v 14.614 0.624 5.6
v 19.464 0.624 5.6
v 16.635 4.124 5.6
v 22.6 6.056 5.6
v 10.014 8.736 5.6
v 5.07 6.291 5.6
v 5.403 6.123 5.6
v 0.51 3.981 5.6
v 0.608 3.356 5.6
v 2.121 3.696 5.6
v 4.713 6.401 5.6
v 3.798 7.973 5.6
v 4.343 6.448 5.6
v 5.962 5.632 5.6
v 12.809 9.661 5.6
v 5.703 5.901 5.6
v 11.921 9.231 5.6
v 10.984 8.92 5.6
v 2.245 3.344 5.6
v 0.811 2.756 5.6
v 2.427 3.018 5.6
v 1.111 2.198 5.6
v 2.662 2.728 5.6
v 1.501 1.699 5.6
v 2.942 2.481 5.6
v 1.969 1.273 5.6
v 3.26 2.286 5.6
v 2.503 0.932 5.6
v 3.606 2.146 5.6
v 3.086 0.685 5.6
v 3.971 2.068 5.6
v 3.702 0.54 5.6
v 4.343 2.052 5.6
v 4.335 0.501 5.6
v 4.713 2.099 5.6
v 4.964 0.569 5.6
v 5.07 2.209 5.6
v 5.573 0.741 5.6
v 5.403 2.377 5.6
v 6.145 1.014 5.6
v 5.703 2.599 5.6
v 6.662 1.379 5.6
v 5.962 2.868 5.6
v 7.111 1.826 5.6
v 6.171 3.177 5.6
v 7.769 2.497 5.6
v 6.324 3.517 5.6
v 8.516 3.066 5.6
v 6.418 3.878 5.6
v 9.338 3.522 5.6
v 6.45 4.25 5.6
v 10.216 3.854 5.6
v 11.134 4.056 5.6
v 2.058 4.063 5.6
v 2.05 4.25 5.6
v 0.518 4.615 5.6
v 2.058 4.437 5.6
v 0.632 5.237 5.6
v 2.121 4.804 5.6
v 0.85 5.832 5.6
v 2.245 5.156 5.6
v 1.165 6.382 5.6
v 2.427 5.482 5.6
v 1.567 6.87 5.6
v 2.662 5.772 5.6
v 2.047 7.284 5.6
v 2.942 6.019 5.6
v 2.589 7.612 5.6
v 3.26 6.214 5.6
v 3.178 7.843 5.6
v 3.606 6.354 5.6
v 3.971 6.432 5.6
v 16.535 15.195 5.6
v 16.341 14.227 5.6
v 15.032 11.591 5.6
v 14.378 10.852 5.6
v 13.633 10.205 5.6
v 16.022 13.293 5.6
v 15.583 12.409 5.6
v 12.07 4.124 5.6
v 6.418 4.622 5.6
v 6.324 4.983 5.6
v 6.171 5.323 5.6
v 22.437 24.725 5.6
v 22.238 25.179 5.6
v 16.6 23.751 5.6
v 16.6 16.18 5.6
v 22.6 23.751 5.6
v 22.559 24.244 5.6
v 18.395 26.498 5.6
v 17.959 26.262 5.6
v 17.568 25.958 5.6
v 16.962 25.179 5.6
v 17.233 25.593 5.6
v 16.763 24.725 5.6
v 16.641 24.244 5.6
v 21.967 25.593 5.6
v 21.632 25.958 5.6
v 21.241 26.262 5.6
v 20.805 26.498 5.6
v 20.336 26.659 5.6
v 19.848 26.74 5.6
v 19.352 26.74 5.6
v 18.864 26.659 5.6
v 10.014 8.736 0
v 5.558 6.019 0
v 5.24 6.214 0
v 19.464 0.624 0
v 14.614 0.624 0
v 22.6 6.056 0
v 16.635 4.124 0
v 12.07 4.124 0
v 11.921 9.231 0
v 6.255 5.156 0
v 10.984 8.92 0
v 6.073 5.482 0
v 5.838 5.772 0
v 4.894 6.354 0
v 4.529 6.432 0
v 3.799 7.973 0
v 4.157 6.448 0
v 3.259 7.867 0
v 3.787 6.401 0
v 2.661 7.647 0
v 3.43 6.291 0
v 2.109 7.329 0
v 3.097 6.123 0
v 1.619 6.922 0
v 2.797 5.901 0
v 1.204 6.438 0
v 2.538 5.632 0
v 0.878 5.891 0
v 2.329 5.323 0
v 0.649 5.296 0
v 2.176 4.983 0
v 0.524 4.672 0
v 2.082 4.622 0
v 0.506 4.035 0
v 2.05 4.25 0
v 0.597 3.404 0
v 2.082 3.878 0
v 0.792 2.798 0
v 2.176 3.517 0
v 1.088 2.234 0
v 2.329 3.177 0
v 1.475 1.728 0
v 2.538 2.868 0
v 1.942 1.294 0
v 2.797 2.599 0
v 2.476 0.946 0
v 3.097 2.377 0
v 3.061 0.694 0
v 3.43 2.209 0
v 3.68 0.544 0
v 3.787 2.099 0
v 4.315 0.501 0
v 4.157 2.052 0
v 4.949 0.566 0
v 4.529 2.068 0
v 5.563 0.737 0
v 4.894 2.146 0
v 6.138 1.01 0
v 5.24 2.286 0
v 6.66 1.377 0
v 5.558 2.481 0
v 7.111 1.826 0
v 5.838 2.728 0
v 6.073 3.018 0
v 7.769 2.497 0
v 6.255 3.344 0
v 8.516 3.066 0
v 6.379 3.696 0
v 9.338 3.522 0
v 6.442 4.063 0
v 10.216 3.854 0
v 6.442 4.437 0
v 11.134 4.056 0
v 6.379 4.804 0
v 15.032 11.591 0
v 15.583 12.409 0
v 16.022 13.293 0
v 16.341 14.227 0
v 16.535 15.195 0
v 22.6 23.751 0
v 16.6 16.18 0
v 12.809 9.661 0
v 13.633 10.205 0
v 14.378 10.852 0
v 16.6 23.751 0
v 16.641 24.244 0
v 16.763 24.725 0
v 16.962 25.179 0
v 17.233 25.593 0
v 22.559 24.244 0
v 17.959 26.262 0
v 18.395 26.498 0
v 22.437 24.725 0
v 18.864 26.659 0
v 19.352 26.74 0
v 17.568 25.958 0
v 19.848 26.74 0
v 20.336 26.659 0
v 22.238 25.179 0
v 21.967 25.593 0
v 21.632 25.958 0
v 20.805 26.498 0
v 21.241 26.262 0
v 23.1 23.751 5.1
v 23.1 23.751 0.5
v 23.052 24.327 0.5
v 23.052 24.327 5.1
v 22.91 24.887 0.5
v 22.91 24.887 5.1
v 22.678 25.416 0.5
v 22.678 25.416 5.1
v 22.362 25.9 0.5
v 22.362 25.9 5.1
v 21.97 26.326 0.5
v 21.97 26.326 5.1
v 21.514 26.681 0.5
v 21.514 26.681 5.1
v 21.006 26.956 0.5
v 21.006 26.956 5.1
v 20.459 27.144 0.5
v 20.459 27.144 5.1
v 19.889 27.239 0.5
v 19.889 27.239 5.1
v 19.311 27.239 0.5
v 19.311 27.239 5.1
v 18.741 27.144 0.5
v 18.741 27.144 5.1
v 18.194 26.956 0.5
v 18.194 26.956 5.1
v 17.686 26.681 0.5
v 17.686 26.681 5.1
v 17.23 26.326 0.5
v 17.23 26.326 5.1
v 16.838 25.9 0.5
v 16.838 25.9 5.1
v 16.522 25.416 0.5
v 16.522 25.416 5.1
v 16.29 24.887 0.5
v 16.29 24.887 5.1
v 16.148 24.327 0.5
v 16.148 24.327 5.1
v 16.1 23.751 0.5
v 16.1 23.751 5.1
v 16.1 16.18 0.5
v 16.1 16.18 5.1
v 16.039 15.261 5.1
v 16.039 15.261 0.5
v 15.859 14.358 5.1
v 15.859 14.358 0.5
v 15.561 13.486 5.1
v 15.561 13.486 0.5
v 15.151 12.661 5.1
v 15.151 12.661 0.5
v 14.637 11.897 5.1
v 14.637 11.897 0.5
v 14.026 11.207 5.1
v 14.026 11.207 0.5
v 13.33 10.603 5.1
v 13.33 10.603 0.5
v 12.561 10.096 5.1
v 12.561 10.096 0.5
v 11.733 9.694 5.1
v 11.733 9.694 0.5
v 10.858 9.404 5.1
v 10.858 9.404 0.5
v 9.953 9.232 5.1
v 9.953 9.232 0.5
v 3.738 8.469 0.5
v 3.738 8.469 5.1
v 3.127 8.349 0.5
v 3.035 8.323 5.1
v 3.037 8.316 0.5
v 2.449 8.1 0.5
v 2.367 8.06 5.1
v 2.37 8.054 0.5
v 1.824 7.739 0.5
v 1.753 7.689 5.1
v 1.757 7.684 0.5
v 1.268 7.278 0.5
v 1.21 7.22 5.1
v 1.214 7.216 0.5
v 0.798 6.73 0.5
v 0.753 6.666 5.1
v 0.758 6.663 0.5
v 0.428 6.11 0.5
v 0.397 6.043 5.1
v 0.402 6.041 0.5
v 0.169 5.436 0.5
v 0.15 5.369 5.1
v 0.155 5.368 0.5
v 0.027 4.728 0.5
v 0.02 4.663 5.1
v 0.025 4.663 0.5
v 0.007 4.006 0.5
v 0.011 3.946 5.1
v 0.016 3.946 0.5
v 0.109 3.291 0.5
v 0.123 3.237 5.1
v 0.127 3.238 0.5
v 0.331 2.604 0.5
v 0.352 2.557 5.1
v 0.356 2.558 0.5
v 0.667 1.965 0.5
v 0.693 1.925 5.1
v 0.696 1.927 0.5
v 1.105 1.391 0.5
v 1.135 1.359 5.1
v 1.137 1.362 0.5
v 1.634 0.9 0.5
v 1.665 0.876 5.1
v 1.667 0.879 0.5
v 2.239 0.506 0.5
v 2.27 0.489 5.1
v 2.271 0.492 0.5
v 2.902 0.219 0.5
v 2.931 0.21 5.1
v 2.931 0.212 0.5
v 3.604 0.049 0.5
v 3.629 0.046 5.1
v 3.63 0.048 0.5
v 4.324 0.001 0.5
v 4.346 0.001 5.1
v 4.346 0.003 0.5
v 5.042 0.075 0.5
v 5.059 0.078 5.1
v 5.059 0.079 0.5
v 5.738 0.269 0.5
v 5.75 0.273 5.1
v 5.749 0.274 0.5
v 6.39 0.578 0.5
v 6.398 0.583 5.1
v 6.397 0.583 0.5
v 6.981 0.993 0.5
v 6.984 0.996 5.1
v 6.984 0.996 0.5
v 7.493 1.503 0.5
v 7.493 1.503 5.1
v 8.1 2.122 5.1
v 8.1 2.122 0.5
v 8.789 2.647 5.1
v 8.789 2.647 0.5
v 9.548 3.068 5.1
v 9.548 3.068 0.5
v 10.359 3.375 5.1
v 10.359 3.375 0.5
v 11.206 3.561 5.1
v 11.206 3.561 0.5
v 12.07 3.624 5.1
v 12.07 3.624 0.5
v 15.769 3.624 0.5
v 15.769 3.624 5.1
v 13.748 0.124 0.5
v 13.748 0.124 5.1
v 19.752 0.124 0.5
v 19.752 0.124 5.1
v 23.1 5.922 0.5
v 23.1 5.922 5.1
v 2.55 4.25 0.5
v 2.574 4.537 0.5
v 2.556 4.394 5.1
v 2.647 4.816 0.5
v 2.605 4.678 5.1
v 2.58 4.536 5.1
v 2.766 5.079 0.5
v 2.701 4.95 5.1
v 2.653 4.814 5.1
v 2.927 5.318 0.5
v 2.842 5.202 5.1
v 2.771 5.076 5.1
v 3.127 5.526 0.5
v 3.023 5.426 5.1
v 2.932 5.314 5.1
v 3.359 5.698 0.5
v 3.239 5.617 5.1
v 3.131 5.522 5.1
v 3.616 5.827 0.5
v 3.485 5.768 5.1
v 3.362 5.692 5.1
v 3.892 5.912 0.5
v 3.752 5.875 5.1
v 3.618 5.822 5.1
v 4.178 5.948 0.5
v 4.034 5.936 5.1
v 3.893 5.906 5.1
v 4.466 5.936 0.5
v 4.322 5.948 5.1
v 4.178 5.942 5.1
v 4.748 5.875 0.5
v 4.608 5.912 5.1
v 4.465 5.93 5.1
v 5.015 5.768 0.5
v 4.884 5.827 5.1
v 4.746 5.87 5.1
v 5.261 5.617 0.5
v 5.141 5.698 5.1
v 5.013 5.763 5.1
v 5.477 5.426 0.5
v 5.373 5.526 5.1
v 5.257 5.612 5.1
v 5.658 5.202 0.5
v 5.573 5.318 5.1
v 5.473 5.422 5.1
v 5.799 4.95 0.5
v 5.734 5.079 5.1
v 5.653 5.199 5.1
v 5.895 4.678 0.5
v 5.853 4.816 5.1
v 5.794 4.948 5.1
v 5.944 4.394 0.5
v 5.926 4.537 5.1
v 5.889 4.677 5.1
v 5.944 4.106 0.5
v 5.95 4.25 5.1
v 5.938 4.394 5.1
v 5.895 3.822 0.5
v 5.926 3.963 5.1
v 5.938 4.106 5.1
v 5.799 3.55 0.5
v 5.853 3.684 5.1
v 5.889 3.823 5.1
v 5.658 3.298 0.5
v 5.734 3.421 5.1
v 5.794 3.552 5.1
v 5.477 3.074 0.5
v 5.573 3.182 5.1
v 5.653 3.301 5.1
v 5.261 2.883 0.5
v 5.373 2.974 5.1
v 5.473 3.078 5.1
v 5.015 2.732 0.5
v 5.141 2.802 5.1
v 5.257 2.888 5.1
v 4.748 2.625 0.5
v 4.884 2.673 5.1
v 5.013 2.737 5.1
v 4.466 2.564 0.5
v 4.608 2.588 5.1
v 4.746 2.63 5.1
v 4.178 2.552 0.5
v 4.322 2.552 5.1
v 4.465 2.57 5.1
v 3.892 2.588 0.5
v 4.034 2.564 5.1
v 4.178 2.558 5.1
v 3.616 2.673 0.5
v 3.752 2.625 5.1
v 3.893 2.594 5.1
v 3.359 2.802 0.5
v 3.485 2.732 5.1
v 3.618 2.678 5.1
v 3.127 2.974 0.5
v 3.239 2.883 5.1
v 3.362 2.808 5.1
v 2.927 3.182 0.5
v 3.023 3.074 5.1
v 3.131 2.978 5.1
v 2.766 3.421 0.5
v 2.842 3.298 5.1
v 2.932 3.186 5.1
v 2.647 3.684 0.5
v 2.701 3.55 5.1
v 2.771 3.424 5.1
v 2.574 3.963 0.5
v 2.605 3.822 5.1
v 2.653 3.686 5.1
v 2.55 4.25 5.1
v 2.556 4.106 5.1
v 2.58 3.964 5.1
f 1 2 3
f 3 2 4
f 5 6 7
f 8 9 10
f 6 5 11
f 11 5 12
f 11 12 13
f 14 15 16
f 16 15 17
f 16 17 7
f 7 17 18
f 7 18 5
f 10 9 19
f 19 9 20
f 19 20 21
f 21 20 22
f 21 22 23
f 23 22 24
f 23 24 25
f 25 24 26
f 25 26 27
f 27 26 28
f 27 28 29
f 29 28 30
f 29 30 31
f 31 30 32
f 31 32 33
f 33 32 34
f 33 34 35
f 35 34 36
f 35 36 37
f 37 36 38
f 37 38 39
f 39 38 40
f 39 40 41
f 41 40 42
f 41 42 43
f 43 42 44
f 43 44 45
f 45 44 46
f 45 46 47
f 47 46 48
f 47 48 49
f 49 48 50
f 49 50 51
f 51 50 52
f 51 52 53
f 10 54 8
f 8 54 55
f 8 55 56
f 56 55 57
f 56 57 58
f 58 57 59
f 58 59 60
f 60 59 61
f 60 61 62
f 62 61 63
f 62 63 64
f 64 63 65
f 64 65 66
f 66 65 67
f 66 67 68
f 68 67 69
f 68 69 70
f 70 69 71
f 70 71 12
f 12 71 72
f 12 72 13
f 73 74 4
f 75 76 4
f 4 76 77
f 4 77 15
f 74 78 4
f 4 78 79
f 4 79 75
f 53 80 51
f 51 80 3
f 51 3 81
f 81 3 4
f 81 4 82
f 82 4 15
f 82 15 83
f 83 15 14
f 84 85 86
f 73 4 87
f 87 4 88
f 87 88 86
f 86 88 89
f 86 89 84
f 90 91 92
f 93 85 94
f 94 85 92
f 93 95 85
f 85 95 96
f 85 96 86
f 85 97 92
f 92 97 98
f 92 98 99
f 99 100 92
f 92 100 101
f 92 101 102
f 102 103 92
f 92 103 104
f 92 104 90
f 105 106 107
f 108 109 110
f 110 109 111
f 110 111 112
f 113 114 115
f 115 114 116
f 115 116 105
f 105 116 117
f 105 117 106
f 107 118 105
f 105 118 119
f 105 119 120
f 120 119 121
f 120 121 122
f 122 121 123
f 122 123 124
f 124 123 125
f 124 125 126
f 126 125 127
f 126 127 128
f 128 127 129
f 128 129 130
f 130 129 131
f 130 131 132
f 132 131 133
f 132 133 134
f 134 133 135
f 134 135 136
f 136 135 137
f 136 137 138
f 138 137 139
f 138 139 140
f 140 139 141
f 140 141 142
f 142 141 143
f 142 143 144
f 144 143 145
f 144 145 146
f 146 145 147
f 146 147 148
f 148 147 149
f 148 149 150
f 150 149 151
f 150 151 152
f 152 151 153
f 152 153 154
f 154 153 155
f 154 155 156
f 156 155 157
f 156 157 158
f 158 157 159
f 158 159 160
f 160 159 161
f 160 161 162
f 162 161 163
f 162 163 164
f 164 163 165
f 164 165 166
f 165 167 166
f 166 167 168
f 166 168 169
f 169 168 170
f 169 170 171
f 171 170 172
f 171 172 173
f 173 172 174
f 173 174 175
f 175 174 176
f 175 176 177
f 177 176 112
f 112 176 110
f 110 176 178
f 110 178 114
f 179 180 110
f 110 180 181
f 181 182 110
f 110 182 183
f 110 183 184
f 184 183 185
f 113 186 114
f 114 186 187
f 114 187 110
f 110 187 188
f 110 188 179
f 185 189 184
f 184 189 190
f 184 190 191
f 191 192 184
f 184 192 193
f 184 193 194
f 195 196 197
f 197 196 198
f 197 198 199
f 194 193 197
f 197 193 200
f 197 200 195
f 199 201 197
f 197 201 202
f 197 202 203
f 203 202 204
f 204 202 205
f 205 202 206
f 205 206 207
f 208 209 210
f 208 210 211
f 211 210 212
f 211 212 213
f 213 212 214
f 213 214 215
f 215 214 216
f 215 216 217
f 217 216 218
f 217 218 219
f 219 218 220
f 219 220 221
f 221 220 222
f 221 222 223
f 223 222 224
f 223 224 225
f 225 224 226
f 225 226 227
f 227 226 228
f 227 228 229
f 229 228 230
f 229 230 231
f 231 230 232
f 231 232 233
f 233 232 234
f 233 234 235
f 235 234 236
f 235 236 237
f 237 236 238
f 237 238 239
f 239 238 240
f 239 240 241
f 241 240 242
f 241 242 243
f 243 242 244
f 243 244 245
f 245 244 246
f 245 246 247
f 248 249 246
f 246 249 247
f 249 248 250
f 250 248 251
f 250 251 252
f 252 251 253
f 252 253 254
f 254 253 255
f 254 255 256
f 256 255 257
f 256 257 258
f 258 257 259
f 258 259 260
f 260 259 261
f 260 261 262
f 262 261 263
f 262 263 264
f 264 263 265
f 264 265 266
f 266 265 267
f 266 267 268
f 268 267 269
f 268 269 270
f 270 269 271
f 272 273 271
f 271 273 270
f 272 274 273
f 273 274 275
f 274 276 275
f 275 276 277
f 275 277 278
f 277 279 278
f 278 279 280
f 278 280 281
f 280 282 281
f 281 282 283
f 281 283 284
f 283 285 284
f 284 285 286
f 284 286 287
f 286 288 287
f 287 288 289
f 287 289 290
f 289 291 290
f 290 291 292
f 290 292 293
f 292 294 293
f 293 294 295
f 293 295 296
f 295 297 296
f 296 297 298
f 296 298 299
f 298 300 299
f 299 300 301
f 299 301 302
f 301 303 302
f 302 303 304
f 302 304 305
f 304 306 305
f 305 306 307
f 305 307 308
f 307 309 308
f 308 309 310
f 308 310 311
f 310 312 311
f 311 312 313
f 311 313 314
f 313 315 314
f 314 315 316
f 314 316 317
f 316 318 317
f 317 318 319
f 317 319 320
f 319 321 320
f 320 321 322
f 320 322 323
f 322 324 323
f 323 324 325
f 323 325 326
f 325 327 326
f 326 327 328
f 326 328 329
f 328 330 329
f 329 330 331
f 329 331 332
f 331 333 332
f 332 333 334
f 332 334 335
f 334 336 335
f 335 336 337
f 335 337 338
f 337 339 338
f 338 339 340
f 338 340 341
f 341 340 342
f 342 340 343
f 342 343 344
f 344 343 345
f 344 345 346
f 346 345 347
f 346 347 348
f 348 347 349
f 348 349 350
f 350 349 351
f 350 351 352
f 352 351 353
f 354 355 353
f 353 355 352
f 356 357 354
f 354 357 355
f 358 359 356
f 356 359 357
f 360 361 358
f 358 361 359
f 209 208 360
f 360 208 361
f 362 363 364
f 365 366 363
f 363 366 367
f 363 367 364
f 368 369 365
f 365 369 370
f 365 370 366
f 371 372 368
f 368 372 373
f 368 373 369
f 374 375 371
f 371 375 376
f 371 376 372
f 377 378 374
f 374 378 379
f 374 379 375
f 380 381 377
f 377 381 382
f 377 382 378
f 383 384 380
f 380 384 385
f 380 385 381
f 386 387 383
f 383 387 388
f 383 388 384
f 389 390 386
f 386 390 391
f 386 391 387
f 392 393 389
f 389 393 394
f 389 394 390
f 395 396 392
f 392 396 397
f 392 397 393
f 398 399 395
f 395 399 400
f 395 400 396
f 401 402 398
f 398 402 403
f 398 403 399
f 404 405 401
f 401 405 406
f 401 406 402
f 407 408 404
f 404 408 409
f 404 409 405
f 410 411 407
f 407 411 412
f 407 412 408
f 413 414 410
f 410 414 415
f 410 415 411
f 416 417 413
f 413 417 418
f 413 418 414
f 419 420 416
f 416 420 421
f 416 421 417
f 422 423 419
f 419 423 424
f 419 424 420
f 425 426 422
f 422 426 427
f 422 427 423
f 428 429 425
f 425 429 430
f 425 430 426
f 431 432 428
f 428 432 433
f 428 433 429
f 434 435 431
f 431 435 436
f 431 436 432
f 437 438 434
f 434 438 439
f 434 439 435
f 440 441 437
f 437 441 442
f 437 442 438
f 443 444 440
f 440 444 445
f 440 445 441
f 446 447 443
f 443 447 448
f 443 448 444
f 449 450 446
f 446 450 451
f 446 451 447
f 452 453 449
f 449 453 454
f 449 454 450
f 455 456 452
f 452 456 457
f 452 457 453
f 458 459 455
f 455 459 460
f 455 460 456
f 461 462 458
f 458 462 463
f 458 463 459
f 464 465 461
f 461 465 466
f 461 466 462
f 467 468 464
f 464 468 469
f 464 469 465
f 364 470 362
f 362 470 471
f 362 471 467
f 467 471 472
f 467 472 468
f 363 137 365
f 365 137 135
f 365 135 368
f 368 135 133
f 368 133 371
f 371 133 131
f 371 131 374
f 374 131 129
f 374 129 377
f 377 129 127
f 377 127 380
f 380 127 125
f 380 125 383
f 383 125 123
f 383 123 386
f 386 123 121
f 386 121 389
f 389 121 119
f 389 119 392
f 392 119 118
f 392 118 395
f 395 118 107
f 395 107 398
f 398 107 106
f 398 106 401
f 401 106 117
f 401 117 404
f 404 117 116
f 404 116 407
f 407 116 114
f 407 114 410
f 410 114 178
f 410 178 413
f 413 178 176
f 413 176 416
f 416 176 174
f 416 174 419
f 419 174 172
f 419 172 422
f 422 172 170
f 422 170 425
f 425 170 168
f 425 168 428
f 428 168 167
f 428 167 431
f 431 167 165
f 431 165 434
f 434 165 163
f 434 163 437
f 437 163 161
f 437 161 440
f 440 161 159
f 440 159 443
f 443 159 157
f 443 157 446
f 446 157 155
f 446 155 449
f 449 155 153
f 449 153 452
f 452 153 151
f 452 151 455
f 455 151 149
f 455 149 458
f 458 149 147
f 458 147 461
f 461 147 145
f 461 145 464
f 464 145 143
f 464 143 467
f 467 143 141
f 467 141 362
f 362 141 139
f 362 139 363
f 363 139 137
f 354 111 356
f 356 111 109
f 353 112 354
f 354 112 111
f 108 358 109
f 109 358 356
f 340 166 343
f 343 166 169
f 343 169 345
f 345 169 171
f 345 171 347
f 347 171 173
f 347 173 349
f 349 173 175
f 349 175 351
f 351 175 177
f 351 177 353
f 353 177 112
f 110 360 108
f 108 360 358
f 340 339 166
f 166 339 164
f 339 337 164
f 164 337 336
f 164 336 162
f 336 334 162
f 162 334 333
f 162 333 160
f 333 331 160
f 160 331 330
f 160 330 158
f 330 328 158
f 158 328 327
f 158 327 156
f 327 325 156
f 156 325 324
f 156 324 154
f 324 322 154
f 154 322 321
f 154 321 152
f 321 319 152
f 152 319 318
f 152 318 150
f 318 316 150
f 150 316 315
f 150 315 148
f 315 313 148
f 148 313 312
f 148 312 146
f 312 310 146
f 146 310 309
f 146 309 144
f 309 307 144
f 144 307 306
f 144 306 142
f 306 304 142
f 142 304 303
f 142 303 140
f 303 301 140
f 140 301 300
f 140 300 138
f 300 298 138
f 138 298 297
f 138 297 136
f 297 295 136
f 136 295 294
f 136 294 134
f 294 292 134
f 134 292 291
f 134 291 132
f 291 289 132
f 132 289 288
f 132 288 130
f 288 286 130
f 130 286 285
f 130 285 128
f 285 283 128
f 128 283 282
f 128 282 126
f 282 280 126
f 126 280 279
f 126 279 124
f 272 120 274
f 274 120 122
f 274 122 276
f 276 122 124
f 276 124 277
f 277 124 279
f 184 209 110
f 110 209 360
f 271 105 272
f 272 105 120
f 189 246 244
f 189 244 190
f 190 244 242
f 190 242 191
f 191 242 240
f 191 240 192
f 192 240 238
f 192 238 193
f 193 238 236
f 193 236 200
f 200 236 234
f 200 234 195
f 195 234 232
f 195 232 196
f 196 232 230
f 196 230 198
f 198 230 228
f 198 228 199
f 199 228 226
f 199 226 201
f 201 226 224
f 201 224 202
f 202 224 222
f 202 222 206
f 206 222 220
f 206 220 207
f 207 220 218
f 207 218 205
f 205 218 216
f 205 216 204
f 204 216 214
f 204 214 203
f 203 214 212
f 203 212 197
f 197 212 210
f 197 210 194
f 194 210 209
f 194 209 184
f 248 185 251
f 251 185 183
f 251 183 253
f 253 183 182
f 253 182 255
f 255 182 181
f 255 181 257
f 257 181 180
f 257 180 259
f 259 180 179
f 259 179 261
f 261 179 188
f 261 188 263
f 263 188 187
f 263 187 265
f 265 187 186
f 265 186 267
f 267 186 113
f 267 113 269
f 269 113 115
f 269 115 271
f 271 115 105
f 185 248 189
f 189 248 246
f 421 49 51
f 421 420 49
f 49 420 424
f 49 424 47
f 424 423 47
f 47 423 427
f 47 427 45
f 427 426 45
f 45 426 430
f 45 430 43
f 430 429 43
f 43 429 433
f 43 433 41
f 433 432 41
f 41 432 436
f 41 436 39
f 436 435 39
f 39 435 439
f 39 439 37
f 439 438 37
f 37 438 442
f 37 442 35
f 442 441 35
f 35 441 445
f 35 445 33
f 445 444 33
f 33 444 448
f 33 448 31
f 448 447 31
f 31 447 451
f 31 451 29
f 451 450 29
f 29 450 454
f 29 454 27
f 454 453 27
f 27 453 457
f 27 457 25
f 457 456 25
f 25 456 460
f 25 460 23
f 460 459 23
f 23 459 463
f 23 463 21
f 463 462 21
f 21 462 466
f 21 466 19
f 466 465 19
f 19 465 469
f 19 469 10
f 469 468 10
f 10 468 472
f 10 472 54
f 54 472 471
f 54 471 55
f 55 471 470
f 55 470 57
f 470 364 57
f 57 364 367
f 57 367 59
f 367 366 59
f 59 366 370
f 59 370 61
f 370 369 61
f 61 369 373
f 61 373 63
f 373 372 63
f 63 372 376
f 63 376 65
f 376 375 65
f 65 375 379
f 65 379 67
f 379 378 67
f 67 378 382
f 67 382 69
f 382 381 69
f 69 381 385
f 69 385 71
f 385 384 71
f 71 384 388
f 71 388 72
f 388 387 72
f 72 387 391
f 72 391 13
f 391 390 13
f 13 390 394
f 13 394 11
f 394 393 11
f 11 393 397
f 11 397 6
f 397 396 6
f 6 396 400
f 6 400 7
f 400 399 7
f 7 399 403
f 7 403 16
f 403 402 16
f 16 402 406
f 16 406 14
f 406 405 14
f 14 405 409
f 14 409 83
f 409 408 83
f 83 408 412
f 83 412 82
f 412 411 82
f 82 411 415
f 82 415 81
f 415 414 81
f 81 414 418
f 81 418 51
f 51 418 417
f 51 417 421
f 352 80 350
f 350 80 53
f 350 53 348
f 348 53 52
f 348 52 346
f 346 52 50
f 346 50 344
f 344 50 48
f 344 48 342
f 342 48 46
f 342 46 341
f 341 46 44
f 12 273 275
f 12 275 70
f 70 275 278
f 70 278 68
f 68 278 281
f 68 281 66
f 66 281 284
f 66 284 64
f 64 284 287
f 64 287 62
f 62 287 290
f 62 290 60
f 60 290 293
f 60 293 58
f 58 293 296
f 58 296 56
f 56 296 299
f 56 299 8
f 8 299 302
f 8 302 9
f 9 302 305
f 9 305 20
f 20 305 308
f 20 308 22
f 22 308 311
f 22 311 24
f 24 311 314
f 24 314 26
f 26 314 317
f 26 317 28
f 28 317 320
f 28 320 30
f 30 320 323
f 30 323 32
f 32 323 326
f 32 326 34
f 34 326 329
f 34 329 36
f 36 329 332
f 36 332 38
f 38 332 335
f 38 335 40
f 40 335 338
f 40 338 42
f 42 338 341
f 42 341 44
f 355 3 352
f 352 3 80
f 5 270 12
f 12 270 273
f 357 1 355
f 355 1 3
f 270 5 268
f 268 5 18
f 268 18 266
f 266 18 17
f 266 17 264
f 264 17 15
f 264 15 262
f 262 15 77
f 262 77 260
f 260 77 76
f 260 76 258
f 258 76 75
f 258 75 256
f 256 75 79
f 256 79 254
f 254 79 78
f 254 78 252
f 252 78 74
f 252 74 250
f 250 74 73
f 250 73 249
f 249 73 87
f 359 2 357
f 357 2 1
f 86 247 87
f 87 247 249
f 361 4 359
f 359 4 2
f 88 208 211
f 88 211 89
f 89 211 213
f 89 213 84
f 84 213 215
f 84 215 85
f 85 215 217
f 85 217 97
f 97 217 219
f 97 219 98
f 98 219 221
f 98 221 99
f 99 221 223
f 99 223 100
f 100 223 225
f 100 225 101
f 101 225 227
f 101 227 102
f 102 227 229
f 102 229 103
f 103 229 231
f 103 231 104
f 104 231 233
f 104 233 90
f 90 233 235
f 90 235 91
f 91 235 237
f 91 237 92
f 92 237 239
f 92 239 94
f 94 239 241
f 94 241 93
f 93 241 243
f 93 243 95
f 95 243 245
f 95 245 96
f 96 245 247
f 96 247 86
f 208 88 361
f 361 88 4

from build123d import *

# Parameters (mm, degrees)
CROQUIS1_R              = 1.7
SALIENTE_EXTRUIR4_DEPTH = 5.6
CHAFL_N3_SIZE           = 0.5


with BuildPart() as part:
    # Croquis1 → Saliente-Extruir4 (new body)
    with BuildSketch(Plane.XY):
        with BuildLine():
            Line((16.09779672, 23.748075599), (16.09779672, 16.177387183))
            ThreePointArc((16.09779672, 16.177387183), (14.340486657, 11.539046724), (9.9508818, 9.229564082))
            Line((9.9508818, 9.229564082), (3.735387364, 8.46639762))
            ThreePointArc((3.735387364, 8.46639762), (0.50668224, 2.230828662), (7.490439371, 1.500080182))
            ThreePointArc((7.490439371, 1.500080182), (9.545533222, 3.0653793), (12.068287742, 3.621510305))
            Line((12.068287742, 3.621510305), (15.766559407, 3.621510305))
            Line((15.766559407, 3.621510305), (13.745833465, 0.121510305))
            Line((13.745833465, 0.121510305), (19.750276265, 0.121510305))
            Line((19.750276265, 0.121510305), (23.097796776, 5.919585909))
            Line((23.097796776, 5.919585909), (23.097796776, 23.748075599))
            ThreePointArc((23.097796776, 23.748075599), (19.597796748, 27.248075627), (16.09779672, 23.748075599))
        make_face()
        with Locations((4.247796776, 4.247400512)):
            Circle(CROQUIS1_R, mode=Mode.SUBTRACT)
    extrude(amount=SALIENTE_EXTRUIR4_DEPTH)

    # Chaflán3
    chafl_n3_edges = [part.edges().sort_by_distance(p)[0] for p in [
        (14.340486657, 11.539046724, 5.6),
        (23.097796776, 14.833830754, 0),
        (21.42403652, 3.020548107, 0),
        (16.748054865, 0.121510305, 0),
        (14.756196436, 1.871510305, 0),
        (13.917423575, 3.621510305, 0),
        (9.545533222, 3.0653793, 0),
        (0.50668224, 2.230828662, 0),
        (6.843134582, 8.847980851, 0),
        (6.843134582, 8.847980851, 5.6),
        (14.340486657, 11.539046724, 0),
        (16.09779672, 19.962731391, 0),
        (19.597796748, 27.248075627, 0),
        (0.50668224, 2.230828662, 5.6),
        (9.545533222, 3.0653793, 5.6),
        (13.917423575, 3.621510305, 5.6),
        (14.756196436, 1.871510305, 5.6),
        (2.547796776, 4.247400512, 0),
        (2.547796776, 4.247400512, 5.6),
        (16.748054865, 0.121510305, 5.6),
        (21.42403652, 3.020548107, 5.6),
        (23.097796776, 14.833830754, 5.6),
        (19.597796748, 27.248075627, 5.6),
        (16.09779672, 19.962731391, 5.6),
    ]]
    chamfer(chafl_n3_edges, length=CHAFL_N3_SIZE)


solid = part.part
